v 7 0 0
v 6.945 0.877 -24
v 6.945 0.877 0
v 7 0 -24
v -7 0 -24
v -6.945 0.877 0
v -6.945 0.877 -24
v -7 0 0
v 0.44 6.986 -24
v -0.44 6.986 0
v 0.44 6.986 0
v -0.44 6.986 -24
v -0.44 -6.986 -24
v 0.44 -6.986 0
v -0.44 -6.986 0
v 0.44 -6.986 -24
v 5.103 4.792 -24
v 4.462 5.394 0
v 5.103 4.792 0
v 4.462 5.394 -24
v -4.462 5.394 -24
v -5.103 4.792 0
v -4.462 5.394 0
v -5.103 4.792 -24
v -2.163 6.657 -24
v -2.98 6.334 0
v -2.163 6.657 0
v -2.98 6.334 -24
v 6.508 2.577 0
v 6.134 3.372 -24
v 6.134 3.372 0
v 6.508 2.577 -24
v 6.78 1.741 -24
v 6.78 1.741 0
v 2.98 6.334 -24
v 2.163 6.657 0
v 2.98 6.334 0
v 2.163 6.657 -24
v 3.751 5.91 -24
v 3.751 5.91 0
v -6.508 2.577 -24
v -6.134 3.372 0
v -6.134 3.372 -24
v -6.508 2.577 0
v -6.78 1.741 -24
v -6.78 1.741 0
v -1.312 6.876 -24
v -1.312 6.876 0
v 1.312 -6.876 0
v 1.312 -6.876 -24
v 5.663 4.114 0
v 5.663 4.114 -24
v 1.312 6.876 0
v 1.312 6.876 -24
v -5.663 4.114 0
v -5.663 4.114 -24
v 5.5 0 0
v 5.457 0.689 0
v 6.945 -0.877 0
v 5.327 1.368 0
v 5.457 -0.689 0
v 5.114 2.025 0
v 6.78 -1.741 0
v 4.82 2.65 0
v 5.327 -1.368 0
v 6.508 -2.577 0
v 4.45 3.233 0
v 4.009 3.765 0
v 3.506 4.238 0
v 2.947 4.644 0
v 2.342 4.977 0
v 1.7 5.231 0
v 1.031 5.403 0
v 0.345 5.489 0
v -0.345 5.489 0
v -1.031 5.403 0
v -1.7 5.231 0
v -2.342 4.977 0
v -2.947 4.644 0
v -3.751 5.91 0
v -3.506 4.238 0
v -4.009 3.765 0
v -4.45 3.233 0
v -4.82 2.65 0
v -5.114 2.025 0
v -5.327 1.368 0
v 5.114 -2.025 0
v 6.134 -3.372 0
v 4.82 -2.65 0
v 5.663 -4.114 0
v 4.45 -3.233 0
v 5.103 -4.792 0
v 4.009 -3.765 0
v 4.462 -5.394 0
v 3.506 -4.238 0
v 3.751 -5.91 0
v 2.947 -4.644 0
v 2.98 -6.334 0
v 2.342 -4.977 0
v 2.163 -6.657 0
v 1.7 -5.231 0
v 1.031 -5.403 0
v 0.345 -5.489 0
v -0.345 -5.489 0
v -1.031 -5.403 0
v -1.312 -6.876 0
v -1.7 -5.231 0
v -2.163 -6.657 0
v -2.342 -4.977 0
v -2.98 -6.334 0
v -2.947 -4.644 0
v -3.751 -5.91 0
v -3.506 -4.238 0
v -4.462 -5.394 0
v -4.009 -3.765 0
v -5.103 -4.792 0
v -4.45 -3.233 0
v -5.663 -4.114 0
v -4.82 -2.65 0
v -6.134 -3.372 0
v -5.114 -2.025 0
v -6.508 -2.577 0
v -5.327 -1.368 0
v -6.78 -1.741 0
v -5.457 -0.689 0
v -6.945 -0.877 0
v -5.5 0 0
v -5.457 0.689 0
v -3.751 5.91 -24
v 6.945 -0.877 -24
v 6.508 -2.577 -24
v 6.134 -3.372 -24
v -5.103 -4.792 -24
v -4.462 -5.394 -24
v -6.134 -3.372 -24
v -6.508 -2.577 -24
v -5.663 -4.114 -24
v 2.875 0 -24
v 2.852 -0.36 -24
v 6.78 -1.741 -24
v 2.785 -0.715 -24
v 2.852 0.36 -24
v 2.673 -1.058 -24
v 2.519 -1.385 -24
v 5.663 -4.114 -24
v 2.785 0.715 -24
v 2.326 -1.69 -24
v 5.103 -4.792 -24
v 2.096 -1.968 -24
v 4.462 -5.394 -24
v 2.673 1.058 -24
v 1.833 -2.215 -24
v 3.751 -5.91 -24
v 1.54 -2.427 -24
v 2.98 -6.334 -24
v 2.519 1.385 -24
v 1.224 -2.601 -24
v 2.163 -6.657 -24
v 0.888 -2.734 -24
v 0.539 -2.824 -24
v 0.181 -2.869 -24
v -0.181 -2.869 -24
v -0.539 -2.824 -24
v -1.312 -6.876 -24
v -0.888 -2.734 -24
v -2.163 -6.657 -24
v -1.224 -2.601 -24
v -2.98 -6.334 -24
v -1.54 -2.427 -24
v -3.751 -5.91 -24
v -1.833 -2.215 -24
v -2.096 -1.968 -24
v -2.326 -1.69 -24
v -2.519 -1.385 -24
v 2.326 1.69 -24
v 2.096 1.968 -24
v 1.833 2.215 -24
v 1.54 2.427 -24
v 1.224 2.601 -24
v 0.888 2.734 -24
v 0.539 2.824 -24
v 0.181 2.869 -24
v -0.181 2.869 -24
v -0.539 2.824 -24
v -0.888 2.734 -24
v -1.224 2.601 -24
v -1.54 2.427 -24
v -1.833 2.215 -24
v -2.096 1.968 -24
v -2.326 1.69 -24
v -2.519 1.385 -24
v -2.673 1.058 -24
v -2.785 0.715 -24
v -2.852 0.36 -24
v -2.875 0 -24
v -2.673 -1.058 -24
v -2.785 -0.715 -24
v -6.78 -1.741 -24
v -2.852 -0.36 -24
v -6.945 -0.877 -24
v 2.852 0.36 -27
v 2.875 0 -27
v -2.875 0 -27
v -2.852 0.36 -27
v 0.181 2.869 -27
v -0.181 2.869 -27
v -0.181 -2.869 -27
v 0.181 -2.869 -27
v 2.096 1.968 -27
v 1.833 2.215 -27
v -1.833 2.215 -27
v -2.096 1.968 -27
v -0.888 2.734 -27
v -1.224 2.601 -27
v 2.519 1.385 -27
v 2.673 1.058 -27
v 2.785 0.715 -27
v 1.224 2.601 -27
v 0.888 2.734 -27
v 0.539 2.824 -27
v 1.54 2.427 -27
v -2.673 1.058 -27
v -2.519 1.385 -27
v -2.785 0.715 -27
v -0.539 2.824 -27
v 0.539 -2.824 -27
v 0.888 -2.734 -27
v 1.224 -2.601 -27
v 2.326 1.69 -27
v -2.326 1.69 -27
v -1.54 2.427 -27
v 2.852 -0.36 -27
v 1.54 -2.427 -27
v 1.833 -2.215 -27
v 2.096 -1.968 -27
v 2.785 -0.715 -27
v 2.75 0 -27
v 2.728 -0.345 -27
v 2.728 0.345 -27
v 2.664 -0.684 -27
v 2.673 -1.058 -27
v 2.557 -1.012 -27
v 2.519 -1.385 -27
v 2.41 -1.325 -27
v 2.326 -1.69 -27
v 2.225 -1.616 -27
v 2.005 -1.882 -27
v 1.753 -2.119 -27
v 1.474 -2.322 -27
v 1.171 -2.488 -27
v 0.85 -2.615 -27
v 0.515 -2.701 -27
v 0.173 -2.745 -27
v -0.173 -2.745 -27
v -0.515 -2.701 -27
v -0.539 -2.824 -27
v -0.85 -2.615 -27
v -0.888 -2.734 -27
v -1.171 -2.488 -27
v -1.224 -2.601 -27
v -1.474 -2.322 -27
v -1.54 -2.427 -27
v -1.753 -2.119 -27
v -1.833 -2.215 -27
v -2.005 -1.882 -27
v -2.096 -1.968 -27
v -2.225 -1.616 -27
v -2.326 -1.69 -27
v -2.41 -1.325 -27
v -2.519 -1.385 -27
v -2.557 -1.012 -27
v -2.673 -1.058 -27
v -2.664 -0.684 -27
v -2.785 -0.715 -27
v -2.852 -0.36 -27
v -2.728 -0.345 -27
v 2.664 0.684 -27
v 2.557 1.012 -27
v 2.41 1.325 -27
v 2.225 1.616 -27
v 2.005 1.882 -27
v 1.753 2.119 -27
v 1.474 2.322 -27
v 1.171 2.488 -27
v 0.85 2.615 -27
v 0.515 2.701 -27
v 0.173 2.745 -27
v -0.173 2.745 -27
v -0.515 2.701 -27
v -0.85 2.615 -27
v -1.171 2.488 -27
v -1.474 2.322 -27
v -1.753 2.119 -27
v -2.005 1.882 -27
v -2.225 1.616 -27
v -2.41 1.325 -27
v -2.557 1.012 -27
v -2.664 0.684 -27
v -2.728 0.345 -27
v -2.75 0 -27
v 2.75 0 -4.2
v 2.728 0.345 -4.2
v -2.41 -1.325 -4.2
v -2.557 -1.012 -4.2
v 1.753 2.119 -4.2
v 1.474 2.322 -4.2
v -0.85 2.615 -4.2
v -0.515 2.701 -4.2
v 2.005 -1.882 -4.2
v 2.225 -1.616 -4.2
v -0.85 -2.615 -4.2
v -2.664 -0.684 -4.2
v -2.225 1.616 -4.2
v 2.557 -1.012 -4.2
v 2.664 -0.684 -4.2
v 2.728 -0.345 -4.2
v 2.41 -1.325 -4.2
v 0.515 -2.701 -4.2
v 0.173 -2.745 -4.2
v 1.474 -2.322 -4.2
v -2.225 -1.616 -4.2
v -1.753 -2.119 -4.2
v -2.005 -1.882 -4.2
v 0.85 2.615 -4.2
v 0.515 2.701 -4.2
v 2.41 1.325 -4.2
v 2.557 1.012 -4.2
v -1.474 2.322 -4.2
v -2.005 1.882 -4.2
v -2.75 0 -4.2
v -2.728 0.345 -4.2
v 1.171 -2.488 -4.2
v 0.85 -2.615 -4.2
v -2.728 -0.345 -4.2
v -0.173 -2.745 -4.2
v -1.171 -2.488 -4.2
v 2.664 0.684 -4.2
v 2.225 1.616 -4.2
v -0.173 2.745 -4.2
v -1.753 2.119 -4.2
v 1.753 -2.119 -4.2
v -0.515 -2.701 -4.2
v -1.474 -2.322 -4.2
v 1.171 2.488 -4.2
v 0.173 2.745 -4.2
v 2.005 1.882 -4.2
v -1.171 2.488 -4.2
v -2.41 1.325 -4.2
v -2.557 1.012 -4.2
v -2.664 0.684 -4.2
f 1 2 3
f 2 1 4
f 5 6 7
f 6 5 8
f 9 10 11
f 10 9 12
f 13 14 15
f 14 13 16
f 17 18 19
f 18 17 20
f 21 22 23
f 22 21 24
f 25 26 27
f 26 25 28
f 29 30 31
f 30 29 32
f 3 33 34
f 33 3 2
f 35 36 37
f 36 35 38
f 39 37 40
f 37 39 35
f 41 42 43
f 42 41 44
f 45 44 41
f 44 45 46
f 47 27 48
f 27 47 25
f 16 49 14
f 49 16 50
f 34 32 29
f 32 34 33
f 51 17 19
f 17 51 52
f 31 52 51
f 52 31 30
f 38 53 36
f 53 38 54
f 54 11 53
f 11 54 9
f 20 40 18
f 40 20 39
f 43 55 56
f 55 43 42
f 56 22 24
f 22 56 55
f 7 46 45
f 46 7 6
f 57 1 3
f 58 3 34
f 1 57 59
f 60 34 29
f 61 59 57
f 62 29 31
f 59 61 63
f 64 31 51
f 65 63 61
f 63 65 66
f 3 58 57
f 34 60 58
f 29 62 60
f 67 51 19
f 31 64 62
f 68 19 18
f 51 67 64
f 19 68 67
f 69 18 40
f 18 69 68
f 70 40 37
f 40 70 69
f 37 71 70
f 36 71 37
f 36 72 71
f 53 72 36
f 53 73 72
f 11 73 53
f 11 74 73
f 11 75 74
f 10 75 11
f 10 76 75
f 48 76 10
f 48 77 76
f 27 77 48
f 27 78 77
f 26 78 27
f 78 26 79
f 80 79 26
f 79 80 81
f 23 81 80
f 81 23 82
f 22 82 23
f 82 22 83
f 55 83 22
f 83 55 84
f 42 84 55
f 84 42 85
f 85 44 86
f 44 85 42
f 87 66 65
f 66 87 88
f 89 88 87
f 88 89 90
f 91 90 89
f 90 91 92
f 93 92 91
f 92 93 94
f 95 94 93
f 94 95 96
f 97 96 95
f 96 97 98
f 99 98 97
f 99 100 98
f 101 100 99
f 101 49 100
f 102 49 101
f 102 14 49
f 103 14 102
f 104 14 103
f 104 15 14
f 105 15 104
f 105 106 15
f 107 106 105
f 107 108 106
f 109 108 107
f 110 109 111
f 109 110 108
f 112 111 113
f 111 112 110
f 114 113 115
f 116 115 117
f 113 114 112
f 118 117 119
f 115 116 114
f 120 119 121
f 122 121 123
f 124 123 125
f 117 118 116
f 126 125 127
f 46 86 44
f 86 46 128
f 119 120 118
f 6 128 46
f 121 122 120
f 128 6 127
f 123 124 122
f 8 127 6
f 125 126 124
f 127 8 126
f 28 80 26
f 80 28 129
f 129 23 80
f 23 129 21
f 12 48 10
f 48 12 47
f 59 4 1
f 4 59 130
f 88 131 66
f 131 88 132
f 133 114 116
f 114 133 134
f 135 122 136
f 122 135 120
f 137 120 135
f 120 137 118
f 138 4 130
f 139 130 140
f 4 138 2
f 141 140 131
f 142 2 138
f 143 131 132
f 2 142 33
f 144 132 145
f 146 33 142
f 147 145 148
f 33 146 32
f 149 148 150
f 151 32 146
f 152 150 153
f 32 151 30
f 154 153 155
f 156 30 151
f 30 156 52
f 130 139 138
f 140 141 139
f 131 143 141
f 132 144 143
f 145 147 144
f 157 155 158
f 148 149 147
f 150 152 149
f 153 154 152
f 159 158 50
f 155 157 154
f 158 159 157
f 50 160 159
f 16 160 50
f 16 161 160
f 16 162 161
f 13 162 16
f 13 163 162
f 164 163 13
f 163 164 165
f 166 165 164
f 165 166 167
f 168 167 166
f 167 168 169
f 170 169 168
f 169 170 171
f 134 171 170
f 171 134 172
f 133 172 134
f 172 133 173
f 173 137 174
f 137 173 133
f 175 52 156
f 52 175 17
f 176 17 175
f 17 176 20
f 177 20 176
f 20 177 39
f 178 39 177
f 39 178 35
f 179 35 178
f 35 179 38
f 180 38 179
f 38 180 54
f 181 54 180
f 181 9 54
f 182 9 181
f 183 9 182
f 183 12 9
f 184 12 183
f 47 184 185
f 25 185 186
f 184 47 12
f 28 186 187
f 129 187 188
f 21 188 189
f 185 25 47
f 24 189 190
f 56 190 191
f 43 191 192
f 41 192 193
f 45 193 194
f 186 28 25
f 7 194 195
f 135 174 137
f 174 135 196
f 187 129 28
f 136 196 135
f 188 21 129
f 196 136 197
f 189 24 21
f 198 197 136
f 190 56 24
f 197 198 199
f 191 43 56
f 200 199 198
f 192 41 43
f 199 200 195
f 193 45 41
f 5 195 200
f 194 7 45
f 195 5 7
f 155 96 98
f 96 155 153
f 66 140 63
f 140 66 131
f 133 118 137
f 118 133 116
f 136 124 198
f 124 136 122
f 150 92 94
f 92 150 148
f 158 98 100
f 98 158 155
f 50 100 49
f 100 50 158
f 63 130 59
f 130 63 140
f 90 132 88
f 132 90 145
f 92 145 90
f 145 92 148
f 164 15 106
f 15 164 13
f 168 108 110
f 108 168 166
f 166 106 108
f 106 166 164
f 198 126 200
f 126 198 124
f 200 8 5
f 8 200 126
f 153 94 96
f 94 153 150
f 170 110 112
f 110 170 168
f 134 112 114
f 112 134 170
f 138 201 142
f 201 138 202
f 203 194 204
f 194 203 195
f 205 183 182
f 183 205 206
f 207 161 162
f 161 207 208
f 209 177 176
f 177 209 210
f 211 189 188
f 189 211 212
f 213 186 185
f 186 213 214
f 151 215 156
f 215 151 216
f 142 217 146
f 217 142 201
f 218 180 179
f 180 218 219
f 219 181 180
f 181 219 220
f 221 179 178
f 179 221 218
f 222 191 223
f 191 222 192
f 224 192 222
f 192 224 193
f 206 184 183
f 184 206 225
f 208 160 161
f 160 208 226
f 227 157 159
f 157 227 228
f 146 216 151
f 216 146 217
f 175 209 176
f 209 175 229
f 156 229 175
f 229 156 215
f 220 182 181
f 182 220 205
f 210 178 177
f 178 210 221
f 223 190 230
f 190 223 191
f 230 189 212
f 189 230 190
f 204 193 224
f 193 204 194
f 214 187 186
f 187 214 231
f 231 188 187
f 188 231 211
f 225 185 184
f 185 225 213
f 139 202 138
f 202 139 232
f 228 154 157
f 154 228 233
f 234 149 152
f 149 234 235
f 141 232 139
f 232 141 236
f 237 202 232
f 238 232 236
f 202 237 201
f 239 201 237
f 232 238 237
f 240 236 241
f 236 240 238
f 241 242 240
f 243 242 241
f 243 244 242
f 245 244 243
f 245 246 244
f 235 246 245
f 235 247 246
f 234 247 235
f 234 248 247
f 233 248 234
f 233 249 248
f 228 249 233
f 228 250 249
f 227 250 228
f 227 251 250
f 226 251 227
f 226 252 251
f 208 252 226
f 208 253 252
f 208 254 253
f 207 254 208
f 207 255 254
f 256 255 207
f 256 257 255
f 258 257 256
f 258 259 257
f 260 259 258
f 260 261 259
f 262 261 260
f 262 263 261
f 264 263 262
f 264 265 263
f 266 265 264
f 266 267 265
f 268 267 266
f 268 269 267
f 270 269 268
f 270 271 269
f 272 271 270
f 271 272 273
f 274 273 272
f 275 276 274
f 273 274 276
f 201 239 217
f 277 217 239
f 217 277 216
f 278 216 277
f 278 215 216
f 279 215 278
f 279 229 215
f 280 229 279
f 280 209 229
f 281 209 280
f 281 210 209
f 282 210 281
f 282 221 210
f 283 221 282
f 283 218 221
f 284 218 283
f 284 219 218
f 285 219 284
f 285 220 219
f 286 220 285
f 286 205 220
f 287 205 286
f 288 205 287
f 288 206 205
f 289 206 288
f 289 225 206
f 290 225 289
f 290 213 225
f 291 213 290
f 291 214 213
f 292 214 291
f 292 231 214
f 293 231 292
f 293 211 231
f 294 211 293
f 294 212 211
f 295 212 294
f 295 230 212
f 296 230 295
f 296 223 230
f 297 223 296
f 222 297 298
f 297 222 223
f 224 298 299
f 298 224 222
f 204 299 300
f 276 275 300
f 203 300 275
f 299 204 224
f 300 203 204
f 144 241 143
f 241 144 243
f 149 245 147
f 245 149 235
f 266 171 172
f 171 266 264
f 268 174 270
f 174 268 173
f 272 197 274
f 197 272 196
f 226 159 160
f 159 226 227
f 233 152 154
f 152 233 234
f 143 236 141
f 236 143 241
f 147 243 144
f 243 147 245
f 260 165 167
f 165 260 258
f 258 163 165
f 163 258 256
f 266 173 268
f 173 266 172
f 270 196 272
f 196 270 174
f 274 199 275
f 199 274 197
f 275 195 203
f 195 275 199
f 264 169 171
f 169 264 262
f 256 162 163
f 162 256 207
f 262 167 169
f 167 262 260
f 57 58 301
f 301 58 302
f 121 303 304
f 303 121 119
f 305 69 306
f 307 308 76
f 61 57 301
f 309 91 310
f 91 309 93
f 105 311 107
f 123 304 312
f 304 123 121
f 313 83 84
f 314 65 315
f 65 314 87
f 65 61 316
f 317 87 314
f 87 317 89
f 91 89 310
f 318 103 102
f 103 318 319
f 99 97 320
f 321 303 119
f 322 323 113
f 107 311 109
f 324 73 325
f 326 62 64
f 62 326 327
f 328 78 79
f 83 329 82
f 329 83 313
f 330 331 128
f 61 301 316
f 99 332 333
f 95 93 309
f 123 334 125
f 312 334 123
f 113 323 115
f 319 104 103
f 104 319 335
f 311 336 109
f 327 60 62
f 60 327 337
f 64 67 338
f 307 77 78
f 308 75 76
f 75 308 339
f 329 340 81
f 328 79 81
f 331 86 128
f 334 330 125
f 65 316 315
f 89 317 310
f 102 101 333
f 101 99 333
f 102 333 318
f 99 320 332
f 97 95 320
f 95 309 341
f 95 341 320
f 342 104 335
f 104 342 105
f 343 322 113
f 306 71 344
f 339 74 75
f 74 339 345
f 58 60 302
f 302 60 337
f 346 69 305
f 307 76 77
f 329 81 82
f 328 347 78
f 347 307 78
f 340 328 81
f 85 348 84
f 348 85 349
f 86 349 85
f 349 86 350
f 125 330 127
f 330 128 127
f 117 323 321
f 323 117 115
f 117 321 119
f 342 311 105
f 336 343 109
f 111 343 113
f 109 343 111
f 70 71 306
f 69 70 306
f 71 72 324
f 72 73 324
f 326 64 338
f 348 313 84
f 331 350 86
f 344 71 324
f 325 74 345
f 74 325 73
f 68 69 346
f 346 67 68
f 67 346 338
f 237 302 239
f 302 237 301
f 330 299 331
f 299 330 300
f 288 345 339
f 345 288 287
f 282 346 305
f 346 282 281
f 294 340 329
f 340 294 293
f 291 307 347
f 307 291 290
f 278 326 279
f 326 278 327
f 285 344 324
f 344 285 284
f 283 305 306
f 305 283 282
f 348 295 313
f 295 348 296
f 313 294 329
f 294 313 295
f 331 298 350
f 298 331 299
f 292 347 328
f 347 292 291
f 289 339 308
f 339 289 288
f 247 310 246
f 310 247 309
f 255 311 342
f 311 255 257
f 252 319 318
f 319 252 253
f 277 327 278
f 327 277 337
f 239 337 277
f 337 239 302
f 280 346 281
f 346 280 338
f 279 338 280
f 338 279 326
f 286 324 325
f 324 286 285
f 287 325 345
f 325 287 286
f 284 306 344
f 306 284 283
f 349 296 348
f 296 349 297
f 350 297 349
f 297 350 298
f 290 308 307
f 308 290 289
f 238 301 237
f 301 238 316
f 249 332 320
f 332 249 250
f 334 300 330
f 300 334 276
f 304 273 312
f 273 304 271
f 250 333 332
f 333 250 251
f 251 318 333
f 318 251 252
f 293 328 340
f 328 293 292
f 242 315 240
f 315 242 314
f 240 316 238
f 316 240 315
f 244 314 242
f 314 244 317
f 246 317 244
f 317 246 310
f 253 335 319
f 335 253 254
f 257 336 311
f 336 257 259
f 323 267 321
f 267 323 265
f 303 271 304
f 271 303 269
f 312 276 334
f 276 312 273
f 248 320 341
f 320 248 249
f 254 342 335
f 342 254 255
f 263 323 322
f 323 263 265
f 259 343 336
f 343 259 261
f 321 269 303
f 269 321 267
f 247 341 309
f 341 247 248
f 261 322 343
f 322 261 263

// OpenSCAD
$fn = 50;

difference() {
	union() {
		translate(v = [0, 0, -24.0]) {
			cylinder(h = 24, r = 7.0);
		}
		#translate(v = [0, 0, -27.0]) {
			cylinder(h = 27, r = 2.875);
		}
	}
	union() {
		translate(v = [0, 0, 0]) {
			rotate(a = [0, 0, 0]) {
				difference() {
					union() {
						translate(v = [0, 0, -27.0]) {
							cylinder(h = 27, r = 2.25);
						}
						translate(v = [0, 0, -4.2]) {
							cylinder(h = 4.2, r1 = 2.75, r2 = 5.5);
						}
						translate(v = [0, 0, -27.0]) {
							cylinder(h = 27, r = 2.75);
						}
						translate(v = [0, 0, -27.0]) {
							cylinder(h = 27, r = 2.25);
						}
					}
					union();
				}
			}
		}
	}
}
